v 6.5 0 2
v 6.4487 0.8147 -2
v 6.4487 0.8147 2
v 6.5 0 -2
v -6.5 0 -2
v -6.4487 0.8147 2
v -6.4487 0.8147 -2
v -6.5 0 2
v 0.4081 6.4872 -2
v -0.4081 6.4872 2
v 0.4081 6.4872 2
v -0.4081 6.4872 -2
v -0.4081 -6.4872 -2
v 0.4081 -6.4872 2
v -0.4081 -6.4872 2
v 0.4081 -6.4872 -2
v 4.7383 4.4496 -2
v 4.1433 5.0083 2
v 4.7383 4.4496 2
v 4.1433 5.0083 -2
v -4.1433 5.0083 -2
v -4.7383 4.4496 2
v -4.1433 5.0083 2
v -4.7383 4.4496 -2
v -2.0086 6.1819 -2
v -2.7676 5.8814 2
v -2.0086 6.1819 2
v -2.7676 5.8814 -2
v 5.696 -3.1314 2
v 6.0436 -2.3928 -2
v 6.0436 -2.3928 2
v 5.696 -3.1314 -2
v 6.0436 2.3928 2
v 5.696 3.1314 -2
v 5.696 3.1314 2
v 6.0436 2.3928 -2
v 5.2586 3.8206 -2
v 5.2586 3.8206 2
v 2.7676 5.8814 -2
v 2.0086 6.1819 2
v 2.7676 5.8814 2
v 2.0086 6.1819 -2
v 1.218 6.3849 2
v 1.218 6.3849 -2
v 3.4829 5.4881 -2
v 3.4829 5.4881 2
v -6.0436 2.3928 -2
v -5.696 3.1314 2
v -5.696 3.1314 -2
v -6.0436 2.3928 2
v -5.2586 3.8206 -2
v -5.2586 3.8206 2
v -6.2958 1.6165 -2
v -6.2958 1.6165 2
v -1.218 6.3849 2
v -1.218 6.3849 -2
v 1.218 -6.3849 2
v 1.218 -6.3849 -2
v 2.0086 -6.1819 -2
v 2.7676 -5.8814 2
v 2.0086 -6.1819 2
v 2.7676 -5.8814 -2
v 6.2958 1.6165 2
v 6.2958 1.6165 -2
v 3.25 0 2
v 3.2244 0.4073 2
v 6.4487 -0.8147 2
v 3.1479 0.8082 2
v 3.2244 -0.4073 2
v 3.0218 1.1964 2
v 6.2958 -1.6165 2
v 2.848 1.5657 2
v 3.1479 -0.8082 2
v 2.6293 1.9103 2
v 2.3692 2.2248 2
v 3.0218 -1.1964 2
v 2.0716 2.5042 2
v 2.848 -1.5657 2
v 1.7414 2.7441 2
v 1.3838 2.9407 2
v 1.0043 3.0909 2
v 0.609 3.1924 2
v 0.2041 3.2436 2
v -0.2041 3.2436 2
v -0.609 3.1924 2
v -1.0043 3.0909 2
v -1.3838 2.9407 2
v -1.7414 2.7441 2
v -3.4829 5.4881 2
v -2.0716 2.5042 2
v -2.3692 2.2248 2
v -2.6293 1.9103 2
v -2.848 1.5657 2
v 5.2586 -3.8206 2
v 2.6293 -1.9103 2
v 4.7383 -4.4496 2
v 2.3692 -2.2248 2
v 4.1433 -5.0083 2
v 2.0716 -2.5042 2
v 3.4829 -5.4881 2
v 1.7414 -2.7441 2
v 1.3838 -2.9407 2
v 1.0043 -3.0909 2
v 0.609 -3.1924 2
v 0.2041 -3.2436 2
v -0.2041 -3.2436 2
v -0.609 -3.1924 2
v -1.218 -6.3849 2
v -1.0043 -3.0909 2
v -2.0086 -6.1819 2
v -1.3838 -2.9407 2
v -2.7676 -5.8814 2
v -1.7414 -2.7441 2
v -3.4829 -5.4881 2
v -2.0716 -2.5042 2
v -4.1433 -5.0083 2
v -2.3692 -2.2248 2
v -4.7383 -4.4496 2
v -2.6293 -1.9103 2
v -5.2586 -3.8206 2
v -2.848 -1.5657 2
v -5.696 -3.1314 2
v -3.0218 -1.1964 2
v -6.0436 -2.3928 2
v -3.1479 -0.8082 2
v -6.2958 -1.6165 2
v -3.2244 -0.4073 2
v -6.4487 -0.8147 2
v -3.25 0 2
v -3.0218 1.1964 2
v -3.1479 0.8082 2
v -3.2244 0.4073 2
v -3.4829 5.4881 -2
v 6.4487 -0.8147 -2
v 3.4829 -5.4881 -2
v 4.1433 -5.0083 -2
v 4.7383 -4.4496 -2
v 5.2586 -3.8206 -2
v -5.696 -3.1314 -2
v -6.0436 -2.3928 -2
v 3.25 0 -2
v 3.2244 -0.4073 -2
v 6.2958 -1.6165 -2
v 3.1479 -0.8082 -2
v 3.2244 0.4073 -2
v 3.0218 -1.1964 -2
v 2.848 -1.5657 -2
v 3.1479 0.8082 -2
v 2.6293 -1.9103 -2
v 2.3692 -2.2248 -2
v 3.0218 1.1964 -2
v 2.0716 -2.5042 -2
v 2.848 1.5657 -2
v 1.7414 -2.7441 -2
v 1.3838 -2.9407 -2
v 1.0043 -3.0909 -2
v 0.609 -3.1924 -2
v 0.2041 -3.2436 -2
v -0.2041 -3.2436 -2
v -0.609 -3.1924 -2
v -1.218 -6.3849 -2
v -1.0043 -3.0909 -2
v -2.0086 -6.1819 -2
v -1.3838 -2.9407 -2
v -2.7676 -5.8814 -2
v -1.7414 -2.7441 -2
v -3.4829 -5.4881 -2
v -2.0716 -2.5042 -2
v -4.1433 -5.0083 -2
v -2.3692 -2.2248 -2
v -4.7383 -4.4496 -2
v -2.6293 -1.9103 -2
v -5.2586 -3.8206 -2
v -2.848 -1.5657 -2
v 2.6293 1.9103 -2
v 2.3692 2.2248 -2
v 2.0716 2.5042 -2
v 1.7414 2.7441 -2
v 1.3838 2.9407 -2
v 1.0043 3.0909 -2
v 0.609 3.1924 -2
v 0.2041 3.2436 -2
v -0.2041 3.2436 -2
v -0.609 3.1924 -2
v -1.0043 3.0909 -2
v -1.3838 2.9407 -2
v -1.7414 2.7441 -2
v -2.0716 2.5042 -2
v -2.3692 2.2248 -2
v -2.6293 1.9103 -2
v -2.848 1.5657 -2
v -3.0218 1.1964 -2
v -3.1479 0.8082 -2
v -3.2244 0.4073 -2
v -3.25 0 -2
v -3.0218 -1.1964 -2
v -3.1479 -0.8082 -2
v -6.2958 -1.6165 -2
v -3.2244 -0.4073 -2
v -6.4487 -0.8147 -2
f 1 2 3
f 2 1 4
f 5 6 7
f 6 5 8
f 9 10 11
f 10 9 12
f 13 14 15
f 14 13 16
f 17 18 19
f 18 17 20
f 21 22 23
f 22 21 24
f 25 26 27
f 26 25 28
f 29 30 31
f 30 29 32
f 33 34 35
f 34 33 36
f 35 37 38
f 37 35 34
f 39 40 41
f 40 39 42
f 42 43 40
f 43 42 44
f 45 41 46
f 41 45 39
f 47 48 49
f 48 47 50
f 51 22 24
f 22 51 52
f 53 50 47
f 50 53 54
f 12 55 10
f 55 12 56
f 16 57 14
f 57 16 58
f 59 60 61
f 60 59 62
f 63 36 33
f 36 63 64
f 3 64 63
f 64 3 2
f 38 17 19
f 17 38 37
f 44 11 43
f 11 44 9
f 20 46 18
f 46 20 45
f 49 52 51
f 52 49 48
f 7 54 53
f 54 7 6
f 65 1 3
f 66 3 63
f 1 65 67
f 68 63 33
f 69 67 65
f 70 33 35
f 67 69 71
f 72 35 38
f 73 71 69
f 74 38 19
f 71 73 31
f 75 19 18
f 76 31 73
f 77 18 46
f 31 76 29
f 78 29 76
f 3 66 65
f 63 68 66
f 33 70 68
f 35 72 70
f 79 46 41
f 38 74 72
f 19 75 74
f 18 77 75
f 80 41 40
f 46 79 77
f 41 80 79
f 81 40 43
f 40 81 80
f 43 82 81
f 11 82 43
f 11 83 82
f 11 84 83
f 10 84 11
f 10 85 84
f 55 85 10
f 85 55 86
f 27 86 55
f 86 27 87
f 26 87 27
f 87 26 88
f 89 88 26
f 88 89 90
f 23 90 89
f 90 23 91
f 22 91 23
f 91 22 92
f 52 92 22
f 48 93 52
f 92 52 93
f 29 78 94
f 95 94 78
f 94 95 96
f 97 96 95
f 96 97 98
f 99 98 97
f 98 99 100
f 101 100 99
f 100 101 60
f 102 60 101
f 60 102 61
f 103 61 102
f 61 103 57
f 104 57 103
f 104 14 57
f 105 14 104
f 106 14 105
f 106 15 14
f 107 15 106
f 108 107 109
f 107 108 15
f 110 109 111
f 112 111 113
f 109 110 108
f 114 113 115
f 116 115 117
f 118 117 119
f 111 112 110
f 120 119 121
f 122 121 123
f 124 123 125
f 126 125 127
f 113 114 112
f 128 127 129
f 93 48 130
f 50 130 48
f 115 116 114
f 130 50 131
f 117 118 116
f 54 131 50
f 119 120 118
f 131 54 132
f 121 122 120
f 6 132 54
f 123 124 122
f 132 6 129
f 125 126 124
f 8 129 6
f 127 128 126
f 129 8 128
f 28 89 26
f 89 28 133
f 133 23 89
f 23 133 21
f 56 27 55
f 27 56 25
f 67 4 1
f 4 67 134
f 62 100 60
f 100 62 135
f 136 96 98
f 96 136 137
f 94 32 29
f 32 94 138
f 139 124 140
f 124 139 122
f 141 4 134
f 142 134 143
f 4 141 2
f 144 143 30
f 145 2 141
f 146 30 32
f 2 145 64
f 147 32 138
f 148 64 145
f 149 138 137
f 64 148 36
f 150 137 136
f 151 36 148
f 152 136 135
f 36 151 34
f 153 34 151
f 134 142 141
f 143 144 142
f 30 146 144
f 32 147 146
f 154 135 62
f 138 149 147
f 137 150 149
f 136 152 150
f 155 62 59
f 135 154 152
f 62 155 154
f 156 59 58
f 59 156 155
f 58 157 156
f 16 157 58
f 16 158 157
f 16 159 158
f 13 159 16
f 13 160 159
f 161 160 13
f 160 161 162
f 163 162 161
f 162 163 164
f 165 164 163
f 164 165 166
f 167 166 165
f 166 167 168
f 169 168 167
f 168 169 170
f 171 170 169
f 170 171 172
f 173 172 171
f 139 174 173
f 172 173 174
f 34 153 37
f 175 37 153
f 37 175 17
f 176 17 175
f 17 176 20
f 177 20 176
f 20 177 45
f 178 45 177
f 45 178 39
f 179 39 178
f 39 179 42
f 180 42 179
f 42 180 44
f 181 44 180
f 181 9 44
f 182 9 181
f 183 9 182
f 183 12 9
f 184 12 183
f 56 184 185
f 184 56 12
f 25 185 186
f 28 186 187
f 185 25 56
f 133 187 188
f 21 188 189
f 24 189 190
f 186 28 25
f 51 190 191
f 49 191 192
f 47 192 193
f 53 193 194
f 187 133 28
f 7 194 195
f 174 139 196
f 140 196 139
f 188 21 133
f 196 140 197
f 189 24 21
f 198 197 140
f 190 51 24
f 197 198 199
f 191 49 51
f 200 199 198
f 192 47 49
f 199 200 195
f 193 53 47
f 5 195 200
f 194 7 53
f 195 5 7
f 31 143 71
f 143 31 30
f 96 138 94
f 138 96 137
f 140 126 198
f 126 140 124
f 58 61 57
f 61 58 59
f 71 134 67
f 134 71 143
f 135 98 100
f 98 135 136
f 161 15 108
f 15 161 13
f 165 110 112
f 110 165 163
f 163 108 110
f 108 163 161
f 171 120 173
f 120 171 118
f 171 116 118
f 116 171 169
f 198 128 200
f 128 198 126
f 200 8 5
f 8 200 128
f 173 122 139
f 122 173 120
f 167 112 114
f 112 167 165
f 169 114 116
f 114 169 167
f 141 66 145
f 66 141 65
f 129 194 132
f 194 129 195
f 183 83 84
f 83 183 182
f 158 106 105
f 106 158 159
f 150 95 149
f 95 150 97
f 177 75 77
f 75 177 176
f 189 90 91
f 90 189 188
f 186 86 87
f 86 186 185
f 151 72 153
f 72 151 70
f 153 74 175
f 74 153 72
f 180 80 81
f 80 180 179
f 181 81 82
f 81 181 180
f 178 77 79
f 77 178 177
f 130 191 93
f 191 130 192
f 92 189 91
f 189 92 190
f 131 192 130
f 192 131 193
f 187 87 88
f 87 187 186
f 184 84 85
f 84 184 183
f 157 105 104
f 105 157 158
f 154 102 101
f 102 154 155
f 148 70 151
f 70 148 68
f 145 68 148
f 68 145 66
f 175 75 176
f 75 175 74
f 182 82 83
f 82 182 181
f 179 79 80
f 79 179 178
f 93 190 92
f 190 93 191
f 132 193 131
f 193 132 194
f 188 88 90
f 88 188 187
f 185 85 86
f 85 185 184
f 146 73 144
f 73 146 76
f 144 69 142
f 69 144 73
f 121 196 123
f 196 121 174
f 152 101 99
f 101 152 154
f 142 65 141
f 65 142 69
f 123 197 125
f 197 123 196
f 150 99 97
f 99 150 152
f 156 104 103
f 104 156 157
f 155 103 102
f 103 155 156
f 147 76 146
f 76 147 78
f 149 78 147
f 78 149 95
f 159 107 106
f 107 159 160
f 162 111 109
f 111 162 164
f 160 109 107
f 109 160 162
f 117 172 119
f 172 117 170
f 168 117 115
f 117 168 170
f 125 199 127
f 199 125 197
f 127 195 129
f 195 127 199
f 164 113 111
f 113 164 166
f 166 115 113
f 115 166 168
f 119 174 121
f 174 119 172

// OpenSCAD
$fn = 50;


difference() {
	union() {
		translate(v = [0, 0, -2.0000000000]) {
			cylinder(h = 4, r = 6.5000000000);
		}
	}
	union() {
		translate(v = [0, 0, -100.0000000000]) {
			cylinder(h = 200, r = 3.2500000000);
		}
	}
}
